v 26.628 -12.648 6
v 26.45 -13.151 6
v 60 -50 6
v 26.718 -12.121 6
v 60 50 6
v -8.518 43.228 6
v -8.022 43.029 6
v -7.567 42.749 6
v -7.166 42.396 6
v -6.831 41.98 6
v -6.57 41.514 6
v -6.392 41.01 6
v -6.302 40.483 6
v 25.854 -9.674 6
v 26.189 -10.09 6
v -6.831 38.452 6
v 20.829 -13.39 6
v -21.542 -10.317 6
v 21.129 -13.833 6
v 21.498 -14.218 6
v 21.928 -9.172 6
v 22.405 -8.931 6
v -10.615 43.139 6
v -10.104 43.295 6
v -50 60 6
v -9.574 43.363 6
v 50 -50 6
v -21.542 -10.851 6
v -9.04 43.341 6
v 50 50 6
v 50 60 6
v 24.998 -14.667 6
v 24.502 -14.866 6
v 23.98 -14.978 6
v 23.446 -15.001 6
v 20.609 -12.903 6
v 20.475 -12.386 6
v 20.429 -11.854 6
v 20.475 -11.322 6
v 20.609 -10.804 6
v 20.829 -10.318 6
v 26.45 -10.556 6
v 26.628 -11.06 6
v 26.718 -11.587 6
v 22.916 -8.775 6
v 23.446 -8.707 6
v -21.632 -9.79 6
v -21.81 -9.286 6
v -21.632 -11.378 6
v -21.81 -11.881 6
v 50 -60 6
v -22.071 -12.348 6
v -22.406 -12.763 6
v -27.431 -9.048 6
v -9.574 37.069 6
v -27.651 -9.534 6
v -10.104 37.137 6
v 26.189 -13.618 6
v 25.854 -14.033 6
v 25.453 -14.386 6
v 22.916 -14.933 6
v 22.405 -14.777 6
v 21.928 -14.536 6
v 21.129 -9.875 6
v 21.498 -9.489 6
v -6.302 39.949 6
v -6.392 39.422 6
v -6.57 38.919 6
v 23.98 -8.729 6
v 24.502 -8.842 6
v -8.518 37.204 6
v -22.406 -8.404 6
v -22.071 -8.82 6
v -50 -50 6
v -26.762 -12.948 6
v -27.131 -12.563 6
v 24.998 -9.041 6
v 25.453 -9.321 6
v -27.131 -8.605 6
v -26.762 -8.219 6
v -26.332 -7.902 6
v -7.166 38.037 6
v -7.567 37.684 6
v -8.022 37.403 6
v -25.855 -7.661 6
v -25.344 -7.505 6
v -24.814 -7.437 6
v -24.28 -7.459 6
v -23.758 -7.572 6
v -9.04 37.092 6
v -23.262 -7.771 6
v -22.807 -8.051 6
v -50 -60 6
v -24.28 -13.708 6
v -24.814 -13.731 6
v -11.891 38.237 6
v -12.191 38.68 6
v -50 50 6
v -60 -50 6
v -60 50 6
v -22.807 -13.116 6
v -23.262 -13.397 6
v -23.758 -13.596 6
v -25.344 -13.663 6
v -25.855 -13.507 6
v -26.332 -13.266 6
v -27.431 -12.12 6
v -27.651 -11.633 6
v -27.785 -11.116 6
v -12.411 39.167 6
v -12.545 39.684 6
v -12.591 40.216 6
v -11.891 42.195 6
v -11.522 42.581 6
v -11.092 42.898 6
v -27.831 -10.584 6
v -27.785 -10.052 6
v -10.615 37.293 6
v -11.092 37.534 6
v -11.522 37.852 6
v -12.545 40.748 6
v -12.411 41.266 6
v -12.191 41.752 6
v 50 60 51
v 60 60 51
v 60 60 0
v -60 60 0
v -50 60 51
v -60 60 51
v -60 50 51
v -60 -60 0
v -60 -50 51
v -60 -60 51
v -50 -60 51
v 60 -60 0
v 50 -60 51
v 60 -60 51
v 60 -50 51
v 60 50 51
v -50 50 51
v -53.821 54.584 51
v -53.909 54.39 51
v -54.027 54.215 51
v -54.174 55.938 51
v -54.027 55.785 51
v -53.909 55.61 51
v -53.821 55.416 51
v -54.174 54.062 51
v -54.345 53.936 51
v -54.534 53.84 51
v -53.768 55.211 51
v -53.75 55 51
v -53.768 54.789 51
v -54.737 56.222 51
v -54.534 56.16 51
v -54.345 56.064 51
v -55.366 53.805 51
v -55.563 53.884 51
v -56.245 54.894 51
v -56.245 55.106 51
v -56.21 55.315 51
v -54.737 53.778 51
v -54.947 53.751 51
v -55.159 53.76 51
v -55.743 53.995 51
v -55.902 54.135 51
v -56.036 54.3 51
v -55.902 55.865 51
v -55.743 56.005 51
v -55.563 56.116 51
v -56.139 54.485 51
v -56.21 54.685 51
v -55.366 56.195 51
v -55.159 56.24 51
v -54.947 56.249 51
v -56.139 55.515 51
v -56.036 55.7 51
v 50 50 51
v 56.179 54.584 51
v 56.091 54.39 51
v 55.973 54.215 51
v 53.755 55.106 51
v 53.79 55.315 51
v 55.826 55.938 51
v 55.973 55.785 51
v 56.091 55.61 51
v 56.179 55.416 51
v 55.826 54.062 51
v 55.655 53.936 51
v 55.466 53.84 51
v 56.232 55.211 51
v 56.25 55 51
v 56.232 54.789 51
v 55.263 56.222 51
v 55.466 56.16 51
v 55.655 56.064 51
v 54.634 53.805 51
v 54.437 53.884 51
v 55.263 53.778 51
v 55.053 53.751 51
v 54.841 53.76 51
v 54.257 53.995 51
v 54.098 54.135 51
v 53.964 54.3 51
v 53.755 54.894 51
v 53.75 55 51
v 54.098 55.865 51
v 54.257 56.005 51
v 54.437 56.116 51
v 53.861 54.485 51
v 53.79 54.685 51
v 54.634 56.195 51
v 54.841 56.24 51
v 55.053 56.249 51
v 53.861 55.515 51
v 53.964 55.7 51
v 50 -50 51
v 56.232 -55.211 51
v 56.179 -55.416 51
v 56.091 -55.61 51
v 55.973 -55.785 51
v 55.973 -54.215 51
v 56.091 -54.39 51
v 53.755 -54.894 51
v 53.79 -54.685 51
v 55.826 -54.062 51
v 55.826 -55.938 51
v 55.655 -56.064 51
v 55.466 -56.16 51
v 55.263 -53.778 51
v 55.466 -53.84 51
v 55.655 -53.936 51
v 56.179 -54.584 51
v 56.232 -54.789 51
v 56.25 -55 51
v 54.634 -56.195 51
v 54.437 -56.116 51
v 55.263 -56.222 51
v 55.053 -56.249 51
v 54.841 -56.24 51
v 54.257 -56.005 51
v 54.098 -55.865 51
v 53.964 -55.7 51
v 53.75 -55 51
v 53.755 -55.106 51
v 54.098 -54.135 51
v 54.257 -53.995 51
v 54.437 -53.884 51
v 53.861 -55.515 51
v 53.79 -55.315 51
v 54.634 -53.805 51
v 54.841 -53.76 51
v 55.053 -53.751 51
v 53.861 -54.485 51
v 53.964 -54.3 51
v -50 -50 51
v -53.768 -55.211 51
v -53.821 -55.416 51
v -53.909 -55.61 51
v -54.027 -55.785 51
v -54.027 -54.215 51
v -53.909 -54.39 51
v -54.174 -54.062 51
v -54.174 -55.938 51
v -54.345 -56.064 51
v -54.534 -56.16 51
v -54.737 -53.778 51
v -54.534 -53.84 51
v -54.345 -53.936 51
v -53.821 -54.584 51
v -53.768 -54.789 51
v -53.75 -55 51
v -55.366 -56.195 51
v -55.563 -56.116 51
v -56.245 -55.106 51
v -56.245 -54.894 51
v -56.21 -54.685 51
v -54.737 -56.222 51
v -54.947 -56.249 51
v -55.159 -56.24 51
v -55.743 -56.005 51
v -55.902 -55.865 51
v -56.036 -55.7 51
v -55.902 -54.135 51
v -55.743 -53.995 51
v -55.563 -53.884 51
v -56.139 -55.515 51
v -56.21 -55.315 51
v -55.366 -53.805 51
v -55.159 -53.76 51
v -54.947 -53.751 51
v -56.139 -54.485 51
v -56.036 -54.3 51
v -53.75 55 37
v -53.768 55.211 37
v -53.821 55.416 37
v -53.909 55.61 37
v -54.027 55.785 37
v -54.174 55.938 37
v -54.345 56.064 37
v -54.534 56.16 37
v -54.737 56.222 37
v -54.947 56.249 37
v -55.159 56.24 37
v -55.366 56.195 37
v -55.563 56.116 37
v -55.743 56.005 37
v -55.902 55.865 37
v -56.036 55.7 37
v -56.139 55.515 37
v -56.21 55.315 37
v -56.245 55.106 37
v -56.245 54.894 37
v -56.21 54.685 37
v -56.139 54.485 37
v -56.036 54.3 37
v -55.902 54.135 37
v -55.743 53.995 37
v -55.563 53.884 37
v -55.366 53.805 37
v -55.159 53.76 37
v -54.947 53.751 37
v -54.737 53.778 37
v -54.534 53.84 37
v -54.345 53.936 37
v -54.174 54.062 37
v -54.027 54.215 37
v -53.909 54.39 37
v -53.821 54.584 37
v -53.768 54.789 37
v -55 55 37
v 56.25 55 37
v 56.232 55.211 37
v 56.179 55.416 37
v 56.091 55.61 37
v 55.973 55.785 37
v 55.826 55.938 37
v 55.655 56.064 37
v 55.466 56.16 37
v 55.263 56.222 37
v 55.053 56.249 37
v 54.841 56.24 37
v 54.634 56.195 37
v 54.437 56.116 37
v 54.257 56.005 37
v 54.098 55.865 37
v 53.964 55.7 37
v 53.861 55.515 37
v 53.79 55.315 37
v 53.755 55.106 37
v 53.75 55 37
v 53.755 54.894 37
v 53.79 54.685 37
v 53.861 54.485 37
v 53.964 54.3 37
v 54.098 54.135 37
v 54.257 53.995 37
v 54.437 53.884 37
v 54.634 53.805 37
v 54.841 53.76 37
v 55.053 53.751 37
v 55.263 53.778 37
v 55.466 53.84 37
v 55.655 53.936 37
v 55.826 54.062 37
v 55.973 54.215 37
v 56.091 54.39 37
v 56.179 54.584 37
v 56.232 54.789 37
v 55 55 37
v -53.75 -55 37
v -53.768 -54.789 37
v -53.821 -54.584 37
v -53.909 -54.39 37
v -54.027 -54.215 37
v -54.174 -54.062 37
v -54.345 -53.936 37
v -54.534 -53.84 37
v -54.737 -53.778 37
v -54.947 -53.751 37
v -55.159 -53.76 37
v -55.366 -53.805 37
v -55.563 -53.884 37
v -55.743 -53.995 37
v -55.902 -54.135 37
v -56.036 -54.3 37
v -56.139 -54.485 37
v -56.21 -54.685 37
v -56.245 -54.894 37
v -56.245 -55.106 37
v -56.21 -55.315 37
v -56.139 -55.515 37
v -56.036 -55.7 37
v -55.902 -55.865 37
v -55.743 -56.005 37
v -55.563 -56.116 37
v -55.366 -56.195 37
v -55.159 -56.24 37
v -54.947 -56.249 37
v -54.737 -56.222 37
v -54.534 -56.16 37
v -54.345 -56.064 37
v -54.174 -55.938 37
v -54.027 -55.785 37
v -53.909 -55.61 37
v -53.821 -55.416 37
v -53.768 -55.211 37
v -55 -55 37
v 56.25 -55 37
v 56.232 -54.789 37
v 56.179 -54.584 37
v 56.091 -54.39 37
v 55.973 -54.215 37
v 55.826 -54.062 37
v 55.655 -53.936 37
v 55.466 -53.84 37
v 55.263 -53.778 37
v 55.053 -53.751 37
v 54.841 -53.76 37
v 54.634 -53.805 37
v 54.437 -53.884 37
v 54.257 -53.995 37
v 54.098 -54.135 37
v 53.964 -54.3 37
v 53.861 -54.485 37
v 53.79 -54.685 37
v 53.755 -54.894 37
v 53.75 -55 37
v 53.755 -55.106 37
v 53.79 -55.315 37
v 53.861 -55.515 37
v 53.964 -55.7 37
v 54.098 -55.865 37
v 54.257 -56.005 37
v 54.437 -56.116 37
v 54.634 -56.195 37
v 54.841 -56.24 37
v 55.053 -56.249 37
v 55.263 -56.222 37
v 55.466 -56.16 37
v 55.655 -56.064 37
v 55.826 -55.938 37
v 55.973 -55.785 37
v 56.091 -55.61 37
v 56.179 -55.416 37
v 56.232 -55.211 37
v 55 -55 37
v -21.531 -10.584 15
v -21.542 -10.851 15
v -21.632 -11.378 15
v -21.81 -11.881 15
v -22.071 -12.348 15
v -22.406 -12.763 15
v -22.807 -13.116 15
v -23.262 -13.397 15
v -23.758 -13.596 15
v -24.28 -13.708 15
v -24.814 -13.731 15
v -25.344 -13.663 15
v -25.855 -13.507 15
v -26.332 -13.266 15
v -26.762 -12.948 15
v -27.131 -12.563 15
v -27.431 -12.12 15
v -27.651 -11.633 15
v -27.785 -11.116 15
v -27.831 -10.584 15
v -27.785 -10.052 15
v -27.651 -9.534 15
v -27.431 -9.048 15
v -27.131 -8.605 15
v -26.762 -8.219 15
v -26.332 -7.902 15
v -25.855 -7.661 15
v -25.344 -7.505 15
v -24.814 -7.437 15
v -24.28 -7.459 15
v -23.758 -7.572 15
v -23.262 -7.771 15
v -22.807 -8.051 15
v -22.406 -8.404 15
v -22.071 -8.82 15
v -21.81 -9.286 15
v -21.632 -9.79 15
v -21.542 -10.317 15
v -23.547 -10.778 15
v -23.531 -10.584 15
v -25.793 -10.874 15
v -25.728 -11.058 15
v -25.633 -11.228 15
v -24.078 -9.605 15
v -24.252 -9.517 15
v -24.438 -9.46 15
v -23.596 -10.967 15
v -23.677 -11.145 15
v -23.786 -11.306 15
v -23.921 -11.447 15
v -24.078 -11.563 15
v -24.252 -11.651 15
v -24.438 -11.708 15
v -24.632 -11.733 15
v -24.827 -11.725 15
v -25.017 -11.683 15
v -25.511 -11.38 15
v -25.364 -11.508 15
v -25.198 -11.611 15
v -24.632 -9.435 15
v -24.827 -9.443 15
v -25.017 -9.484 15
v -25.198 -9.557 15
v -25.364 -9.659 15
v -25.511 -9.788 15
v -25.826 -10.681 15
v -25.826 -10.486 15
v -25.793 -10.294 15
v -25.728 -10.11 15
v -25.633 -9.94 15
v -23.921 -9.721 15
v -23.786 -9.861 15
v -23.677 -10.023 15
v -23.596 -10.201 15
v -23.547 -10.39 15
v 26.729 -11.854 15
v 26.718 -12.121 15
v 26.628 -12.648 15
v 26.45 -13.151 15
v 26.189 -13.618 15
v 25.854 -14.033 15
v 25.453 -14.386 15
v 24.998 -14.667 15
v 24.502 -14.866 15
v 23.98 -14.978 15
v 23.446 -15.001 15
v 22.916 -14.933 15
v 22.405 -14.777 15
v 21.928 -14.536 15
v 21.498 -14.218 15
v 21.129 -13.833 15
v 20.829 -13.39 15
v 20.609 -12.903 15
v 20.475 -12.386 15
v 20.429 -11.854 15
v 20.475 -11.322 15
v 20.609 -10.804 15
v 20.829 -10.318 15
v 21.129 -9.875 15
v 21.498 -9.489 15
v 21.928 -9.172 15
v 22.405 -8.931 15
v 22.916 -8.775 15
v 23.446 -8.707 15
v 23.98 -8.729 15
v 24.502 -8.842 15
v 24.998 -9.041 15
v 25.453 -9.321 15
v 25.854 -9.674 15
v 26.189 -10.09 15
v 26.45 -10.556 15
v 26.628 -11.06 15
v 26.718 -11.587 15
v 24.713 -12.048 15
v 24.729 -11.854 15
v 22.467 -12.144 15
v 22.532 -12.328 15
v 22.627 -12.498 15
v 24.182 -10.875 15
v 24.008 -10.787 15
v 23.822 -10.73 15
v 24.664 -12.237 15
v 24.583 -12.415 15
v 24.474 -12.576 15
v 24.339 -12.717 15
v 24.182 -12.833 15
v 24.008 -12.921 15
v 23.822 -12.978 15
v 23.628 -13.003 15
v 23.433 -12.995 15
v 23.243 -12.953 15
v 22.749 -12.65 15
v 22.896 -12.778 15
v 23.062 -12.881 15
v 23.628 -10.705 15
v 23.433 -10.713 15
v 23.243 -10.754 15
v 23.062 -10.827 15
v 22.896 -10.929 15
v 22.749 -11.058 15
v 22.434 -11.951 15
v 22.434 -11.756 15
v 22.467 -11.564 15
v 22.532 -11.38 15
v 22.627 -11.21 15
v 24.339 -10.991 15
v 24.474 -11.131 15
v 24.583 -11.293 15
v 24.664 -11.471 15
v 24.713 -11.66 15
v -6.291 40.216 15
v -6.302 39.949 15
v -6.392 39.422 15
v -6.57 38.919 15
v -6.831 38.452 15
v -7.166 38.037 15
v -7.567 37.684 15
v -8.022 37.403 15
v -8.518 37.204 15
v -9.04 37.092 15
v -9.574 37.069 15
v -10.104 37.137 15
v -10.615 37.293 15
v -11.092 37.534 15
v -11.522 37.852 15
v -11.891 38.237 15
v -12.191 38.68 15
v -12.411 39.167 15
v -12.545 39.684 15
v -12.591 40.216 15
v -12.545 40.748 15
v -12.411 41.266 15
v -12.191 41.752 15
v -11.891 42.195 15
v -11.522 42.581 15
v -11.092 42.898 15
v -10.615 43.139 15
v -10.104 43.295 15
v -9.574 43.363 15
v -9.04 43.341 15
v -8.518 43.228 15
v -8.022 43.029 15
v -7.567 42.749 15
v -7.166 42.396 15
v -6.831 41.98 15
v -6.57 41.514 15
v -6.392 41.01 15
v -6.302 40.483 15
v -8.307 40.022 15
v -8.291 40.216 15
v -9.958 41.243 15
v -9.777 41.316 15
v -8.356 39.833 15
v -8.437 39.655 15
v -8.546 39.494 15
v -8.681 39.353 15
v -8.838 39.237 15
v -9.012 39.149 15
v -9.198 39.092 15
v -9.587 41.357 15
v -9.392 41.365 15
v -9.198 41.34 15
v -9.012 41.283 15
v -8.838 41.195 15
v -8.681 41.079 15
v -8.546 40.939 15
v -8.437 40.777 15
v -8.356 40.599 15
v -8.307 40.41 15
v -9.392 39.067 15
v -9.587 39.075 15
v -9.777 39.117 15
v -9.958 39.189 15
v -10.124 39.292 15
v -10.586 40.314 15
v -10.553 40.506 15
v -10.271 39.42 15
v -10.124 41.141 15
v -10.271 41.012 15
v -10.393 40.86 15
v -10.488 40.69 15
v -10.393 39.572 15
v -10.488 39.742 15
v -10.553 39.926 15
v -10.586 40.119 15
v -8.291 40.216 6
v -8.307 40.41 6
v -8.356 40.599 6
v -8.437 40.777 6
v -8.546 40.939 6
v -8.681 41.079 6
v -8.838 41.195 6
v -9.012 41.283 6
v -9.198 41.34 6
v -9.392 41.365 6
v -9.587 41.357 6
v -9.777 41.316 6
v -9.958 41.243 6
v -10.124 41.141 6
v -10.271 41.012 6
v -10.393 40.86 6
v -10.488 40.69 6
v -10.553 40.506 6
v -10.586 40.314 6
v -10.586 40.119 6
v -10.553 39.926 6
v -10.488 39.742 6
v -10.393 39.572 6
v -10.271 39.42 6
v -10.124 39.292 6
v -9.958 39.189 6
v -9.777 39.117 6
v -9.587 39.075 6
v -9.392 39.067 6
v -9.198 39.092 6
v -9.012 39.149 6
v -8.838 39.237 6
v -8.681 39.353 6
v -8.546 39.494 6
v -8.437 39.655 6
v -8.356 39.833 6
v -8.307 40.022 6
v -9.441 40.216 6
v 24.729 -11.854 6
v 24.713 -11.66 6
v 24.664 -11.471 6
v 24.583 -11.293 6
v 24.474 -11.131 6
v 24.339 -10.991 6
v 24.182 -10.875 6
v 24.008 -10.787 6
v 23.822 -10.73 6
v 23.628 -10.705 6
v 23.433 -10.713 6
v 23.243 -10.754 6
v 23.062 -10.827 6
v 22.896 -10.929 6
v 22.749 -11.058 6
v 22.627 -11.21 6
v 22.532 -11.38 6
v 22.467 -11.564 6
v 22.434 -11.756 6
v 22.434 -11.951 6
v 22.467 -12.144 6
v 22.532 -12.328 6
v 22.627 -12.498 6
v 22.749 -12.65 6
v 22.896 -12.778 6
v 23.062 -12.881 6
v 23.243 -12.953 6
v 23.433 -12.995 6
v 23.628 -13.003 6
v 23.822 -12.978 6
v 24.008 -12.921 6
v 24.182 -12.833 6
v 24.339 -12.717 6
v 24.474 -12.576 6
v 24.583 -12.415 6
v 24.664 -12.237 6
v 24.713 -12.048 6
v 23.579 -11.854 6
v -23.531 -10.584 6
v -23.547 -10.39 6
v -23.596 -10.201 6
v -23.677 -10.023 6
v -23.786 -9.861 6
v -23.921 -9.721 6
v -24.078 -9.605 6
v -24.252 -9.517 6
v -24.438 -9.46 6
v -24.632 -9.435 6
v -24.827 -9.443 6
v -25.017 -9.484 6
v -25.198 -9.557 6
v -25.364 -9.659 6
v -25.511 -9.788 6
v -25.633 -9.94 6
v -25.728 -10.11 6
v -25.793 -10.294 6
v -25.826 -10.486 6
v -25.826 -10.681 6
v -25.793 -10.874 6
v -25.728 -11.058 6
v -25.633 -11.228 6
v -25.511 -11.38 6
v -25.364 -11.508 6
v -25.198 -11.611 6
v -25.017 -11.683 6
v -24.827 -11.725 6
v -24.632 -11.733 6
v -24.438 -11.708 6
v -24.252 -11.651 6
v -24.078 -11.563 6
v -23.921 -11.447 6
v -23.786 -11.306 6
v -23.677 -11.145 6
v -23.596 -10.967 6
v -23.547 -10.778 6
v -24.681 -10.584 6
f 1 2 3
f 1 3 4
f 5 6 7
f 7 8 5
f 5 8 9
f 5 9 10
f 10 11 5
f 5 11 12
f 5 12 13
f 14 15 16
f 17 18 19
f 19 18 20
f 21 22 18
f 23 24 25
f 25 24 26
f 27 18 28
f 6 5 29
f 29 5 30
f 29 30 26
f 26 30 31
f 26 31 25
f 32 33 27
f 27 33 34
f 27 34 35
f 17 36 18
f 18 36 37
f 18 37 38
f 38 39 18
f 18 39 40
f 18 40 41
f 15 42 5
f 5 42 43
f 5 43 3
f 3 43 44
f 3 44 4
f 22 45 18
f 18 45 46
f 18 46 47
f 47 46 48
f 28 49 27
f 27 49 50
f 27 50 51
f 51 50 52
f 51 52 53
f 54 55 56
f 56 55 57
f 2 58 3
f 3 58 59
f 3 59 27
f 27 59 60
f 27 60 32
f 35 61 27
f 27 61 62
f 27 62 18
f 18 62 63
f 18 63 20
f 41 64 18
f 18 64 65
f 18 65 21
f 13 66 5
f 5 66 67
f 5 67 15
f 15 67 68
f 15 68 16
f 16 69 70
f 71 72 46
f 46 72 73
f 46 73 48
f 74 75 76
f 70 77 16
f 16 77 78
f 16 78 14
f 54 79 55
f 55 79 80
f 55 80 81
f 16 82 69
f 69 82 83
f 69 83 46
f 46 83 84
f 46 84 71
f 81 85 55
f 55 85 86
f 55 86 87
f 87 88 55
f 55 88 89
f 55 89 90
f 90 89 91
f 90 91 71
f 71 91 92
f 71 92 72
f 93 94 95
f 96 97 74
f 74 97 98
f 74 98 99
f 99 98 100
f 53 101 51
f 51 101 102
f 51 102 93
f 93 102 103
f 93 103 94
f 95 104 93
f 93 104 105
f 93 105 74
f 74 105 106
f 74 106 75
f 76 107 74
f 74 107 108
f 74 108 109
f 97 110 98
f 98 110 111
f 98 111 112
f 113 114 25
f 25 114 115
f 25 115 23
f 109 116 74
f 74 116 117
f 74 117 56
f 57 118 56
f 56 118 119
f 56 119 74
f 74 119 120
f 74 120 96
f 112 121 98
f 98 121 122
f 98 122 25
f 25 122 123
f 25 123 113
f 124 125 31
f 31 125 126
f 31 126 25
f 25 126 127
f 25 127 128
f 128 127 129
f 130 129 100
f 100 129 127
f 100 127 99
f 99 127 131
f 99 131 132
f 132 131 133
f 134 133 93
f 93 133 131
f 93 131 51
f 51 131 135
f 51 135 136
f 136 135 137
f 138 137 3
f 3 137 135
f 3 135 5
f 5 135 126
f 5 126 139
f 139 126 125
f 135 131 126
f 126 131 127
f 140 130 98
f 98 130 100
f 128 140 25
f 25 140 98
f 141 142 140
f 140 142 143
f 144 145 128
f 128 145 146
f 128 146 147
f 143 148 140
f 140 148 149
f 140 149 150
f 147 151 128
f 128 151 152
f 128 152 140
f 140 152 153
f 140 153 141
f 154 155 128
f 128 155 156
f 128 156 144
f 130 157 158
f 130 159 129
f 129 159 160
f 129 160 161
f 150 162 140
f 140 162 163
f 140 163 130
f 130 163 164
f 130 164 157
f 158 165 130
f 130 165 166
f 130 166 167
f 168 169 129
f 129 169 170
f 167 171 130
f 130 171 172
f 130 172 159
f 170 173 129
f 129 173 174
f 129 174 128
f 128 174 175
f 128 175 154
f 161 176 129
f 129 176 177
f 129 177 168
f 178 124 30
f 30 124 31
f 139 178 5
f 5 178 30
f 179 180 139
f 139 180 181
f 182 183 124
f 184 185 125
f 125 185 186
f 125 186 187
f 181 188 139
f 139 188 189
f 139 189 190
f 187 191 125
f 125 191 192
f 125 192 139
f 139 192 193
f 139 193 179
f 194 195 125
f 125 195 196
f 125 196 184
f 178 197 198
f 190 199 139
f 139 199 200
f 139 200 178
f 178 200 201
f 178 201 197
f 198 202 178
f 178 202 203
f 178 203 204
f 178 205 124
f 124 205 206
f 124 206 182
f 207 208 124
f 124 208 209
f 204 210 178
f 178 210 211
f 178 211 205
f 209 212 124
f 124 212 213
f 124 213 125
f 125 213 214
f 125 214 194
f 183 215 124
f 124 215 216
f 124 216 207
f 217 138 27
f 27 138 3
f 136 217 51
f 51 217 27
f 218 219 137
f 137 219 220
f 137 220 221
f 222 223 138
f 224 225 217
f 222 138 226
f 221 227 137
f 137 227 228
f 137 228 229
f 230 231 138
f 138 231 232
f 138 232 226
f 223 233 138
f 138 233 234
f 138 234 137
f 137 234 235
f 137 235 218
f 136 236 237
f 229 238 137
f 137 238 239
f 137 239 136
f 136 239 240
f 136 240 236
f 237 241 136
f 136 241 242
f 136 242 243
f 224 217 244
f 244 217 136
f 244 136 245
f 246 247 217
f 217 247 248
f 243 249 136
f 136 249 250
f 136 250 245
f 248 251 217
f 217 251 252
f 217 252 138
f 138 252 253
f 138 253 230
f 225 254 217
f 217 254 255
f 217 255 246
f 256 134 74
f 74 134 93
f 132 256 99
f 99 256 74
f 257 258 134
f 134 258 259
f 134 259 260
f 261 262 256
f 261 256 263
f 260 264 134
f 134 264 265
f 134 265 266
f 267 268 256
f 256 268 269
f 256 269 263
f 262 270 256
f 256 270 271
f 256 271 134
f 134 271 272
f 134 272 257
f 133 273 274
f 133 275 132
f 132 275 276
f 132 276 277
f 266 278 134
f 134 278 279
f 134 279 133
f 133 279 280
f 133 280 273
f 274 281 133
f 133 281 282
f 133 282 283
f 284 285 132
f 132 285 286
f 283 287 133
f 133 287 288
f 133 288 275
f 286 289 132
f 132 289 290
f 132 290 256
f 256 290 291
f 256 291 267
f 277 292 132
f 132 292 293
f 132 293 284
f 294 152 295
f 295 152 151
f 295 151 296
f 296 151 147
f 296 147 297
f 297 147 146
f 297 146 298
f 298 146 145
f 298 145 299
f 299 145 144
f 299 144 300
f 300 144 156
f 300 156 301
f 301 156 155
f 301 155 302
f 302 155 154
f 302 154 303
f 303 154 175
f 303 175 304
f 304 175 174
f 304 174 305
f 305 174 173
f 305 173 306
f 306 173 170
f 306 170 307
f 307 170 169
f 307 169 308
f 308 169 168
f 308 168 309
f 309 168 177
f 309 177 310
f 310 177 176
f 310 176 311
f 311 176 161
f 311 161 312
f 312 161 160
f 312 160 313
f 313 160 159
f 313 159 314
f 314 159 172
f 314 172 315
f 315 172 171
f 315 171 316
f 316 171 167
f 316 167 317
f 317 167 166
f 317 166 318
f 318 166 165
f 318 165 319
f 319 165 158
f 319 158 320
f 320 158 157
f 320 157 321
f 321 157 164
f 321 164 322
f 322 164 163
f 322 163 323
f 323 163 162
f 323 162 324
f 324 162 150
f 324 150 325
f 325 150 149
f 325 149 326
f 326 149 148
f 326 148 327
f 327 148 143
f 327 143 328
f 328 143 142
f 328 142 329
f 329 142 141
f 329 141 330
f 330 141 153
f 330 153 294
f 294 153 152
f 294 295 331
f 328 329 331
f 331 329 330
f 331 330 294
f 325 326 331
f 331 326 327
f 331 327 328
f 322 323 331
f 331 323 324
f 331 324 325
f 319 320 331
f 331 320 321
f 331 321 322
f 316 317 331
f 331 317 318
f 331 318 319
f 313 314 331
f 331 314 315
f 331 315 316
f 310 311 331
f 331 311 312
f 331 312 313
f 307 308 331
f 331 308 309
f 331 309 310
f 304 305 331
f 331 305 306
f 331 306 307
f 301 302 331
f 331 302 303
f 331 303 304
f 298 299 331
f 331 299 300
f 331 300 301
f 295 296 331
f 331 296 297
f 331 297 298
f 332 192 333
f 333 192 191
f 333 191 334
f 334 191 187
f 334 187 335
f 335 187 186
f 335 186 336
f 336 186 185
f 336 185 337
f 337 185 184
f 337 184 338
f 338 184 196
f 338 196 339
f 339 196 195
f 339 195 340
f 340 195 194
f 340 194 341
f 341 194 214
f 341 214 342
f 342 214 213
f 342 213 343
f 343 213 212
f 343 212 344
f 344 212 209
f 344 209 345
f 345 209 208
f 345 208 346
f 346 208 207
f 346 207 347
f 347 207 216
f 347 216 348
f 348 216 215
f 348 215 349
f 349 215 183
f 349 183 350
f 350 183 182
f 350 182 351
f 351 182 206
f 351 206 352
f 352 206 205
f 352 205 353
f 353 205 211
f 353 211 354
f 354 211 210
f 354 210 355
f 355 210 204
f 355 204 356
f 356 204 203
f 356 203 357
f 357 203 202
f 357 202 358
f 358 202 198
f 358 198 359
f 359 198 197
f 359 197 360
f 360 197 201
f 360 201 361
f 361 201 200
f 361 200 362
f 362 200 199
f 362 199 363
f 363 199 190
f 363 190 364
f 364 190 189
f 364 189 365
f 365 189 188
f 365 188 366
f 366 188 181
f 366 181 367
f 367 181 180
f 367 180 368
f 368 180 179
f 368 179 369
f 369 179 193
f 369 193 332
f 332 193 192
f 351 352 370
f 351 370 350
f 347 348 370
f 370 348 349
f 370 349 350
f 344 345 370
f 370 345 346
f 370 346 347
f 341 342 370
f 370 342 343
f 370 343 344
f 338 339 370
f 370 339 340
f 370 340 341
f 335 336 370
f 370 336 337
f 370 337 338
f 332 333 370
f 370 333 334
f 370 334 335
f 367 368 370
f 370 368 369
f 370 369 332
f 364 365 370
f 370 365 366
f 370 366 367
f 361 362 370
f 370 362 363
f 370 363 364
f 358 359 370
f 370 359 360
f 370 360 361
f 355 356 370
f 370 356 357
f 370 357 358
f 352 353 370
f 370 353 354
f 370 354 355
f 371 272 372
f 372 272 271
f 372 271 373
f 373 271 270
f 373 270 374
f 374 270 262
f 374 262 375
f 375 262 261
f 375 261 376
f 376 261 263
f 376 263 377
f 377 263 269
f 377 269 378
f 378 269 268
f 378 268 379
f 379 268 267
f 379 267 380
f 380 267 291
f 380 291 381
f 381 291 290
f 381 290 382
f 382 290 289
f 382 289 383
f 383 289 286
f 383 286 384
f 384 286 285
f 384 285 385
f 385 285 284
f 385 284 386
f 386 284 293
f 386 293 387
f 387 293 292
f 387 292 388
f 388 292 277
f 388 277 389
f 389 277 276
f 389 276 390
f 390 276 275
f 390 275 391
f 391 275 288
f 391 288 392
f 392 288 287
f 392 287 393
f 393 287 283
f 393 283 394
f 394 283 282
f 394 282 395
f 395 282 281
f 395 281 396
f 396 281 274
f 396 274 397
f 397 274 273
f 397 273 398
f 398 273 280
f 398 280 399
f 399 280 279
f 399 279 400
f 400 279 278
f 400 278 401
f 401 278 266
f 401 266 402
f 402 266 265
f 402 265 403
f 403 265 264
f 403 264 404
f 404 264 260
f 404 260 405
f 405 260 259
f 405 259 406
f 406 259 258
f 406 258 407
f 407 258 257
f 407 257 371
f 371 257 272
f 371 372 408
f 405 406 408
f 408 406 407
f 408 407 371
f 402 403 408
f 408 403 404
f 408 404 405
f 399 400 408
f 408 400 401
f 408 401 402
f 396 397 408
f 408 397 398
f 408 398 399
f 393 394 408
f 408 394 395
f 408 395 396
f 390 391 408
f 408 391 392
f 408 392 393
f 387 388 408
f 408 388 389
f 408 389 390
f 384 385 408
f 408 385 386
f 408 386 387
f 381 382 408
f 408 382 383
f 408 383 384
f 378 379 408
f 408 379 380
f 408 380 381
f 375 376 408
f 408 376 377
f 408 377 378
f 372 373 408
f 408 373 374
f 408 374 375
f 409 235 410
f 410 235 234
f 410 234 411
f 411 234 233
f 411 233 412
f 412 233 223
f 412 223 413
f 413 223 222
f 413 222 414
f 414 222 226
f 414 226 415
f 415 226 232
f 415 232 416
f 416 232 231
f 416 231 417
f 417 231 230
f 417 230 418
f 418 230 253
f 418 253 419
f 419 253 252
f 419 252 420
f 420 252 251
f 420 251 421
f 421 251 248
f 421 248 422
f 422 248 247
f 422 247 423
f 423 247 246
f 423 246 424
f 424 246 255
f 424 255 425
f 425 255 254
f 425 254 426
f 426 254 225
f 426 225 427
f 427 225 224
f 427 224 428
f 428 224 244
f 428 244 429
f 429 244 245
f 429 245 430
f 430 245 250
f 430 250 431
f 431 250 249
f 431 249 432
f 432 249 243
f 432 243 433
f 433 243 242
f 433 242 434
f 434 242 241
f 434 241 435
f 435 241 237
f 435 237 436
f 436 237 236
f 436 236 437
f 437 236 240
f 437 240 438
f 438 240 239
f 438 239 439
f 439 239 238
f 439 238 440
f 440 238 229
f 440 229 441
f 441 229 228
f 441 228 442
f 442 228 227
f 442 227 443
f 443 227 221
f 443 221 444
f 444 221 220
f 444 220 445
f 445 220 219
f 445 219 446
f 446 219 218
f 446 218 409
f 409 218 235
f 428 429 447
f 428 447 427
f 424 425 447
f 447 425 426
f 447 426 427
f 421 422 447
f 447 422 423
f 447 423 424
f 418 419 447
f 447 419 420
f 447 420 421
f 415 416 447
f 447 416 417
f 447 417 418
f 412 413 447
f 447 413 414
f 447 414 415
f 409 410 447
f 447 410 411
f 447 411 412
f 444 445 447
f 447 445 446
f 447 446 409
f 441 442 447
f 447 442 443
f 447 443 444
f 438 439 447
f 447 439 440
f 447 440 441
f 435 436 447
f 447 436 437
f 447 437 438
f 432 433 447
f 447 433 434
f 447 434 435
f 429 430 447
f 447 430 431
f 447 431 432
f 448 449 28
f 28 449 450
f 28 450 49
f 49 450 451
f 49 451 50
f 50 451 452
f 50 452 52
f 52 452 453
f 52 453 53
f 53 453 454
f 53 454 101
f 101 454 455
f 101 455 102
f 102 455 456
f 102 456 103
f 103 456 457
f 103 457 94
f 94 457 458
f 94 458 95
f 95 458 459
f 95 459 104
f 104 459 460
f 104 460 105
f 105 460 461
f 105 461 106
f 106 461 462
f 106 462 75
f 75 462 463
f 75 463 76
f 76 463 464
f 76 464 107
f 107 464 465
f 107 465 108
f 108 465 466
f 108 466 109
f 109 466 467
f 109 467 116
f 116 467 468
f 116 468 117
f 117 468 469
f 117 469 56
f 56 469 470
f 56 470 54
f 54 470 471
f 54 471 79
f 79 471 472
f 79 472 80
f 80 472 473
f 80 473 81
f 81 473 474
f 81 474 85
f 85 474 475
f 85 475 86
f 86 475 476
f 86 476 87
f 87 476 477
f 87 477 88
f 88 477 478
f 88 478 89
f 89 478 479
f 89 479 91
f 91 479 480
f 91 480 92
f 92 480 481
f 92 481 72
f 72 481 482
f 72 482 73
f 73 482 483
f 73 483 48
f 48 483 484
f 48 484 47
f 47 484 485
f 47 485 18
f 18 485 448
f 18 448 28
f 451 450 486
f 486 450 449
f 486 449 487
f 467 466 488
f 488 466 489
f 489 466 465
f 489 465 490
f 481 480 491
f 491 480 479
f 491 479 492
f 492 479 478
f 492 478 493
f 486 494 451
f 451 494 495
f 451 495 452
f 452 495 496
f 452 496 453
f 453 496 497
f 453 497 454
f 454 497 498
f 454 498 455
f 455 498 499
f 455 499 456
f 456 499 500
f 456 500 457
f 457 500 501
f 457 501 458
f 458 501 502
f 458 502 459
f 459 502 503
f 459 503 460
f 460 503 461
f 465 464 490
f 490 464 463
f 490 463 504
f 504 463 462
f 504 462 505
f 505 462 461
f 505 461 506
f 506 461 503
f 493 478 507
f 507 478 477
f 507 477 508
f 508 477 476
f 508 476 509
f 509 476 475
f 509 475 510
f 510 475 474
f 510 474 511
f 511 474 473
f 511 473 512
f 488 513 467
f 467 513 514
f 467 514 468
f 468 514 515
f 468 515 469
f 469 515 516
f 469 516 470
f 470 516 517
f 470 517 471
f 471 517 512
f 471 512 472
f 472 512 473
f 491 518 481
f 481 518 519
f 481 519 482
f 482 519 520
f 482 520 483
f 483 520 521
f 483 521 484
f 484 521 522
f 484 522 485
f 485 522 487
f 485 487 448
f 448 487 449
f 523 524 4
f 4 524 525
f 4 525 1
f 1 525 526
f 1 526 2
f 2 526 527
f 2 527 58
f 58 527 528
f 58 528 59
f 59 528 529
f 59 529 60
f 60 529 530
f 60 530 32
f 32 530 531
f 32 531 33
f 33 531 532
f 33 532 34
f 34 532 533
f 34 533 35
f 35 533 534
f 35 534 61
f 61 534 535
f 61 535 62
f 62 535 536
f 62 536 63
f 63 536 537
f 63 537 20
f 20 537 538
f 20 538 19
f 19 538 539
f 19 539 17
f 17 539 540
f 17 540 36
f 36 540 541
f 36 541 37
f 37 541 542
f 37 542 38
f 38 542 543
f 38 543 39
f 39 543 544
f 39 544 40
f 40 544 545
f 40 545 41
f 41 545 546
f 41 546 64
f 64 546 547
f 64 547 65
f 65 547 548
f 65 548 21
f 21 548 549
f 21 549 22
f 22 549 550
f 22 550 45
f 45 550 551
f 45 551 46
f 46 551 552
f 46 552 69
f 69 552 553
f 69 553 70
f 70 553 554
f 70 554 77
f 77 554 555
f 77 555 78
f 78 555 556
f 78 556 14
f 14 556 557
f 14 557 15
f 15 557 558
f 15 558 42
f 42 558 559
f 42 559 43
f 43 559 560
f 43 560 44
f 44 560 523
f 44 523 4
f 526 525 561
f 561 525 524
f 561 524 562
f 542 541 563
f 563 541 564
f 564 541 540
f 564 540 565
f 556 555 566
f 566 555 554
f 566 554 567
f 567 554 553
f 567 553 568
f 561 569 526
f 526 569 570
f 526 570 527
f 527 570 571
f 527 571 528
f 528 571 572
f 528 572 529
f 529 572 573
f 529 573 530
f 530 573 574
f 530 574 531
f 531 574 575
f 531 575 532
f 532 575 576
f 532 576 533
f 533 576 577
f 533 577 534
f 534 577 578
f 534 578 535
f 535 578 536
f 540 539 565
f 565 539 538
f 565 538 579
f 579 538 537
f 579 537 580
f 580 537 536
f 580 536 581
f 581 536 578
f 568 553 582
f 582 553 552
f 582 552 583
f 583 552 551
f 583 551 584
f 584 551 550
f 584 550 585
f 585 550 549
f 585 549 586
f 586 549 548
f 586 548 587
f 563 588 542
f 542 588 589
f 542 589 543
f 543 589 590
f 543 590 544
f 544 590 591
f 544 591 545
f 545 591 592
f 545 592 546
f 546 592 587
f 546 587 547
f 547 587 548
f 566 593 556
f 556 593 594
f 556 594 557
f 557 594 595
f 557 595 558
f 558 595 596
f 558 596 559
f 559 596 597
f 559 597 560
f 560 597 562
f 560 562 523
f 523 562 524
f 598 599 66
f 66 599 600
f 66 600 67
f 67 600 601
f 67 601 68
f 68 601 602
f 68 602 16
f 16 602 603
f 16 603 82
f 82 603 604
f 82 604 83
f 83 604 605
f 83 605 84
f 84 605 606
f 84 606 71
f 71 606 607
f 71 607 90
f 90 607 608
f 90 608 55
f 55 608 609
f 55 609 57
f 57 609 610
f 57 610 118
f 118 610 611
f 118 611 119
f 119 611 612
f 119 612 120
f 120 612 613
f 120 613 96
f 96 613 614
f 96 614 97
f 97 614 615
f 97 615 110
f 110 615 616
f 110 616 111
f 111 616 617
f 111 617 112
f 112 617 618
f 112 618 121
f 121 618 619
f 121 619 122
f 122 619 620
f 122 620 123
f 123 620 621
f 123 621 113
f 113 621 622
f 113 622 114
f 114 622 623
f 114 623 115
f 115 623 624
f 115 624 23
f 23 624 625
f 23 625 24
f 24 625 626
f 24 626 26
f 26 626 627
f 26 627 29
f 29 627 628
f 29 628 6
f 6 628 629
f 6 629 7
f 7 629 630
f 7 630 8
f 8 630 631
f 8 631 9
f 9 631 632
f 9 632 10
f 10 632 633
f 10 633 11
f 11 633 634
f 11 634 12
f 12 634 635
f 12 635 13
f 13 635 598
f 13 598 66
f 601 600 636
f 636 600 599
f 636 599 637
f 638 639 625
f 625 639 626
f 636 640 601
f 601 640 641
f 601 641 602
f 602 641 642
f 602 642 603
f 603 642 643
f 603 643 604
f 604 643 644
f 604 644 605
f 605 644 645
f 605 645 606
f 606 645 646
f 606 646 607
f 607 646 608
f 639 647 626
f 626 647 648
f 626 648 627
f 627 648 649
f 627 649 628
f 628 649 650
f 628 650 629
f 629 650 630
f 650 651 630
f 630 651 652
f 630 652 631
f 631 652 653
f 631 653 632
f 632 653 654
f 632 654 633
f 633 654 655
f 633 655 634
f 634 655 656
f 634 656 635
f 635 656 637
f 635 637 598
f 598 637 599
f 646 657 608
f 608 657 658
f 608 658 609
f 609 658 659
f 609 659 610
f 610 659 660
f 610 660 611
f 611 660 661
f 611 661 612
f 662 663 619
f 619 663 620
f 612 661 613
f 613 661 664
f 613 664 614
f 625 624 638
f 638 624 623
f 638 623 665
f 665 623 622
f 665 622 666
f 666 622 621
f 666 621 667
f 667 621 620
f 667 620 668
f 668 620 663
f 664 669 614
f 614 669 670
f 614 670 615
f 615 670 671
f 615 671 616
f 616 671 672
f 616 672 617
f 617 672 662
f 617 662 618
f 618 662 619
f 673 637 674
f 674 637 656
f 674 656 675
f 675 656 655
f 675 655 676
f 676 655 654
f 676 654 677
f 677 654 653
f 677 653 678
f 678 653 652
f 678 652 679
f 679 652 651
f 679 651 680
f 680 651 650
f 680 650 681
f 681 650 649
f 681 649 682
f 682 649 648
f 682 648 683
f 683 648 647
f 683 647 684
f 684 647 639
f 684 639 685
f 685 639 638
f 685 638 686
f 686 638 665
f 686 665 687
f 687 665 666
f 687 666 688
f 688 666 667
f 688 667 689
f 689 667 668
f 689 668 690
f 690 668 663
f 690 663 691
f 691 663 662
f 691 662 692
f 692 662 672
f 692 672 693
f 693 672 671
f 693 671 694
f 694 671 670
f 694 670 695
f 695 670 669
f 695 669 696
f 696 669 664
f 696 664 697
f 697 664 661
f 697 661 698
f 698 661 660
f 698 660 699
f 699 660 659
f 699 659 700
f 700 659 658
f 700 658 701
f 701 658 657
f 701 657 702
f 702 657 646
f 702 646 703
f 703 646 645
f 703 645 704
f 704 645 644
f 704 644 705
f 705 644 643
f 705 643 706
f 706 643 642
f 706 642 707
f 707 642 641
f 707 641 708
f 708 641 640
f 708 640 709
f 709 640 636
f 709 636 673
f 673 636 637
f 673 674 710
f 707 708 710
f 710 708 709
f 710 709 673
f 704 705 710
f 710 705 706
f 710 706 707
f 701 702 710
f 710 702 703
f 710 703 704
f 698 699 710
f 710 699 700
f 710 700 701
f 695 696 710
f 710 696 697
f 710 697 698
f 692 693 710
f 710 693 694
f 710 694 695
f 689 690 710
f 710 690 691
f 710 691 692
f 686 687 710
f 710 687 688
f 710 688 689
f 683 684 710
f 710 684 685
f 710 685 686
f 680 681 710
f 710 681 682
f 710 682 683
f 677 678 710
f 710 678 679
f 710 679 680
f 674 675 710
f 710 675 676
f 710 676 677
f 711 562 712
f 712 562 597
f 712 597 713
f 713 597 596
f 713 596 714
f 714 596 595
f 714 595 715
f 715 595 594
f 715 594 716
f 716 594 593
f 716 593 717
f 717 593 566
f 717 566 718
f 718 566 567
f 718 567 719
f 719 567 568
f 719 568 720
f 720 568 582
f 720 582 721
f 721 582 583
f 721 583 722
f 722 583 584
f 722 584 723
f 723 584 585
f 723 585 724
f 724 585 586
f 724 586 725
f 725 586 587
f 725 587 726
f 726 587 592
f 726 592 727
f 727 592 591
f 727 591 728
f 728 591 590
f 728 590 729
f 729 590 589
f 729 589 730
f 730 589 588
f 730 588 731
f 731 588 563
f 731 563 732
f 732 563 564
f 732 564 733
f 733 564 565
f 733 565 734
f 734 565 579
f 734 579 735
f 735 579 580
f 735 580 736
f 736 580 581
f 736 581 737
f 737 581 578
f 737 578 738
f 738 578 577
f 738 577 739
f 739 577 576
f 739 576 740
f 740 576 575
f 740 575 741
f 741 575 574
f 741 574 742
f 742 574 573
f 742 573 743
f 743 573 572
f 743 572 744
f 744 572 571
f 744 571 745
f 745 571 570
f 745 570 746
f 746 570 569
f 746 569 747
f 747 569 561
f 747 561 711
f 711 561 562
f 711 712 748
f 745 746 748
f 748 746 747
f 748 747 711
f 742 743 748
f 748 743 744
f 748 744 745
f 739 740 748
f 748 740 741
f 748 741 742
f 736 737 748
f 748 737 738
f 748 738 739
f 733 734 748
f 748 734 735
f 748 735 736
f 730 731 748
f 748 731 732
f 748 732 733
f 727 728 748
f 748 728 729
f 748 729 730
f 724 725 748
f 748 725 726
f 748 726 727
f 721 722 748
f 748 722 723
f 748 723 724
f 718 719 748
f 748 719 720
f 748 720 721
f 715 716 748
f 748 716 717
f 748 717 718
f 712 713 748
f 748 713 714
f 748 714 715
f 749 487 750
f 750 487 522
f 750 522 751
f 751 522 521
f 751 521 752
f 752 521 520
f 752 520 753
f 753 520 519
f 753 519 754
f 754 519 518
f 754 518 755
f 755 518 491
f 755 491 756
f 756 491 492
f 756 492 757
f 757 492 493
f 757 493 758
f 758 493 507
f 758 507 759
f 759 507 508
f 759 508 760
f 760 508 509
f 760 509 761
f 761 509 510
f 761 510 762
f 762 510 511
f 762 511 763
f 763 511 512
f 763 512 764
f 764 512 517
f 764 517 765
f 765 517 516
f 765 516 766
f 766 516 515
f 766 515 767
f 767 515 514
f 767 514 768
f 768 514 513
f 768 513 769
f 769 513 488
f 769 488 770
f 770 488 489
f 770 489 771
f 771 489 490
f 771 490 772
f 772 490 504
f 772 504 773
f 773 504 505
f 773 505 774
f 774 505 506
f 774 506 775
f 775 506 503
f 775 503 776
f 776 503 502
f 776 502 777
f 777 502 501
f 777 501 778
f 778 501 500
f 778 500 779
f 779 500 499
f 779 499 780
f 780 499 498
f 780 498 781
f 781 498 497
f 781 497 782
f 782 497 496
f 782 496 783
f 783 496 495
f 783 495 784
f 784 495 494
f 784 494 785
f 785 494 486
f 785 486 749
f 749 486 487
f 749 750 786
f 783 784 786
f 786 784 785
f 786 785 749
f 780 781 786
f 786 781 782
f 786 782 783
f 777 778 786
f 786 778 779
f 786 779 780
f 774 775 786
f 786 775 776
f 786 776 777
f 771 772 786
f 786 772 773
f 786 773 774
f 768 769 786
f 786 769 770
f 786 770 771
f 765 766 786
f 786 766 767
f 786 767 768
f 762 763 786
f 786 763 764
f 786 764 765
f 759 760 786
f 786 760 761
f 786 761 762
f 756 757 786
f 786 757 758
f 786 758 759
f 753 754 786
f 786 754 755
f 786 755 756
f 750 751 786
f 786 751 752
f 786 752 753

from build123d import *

# Parameters (mm, degrees)
SKETCH1_W                                  = 120
SKETCH1_H                                  = 120
BOSS_EXTRUDE1_DEPTH                        = 6
SKETCH2_W                                  = 10
SKETCH2_H                                  = 10
BOSS_EXTRUDE2_DEPTH                        = 45
SKETCH4_R                                  = 1.25
CUT_EXTRUDE1_DEPTH                         = 14
MIRROR1_AT_THE_SECOND_PLANE_COPY_1_SKETC_R = 1.25
MIRROR1_AT_THE_SECOND_PLANE_COPY_1_DEPTH   = 14
SKETCH5_R                                  = 3.15
BOSS_EXTRUDE4_DEPTH                        = 9
SKETCH7_R                                  = 1.15
CUT_EXTRUDE2_DEPTH                         = 9


with BuildPart() as part:
    # Sketch1 → Boss-Extrude1 (new body)
    with BuildSketch(Plane(origin=(0, 0, 0), x_dir=(0, 1, 0), z_dir=(0, 0, 1))):
        Rectangle(SKETCH1_W, SKETCH1_H)
    extrude(amount=BOSS_EXTRUDE1_DEPTH)

    # Sketch2 → Boss-Extrude2 (add)
    with BuildSketch(Plane.XY.offset(6)):
        with Locations((-55, 55)):
            Rectangle(SKETCH2_W, SKETCH2_H)
        with Locations((55, 55)):
            Rectangle(SKETCH2_W, SKETCH2_H)
        with Locations((55, -55)):
            Rectangle(SKETCH2_W, SKETCH2_H)
        with Locations((-55, -55)):
            Rectangle(SKETCH2_W, SKETCH2_H)
    extrude(amount=BOSS_EXTRUDE2_DEPTH)

    # Sketch4 → Cut-Extrude1 (cut)
    with BuildSketch(Plane.XY.offset(51)):
        with Locations((-55, 55)):
            Circle(SKETCH4_R)
    cut_extrude1 = extrude(amount=-CUT_EXTRUDE1_DEPTH, mode=Mode.SUBTRACT)

    # Mirror1: Cut-Extrude1 across plane
    add(cut_extrude1.mirror(Plane.ZX), mode=Mode.SUBTRACT)

    # Mirror1 at the second plane: Cut-Extrude1 across plane
    add(cut_extrude1.mirror(Plane(origin=(0, 0, 0), x_dir=(0, 0, 1), z_dir=(1, 0, 0))), mode=Mode.SUBTRACT)

    # Mirror1 at the second plane copy 1 sketc → Mirror1 at the second plane copy 1 (cut)
    with BuildSketch(Plane(origin=(0, 0, 51), x_dir=(-1, 0, 0), z_dir=(0, 0, 1))):
        with Locations((-55, 55)):
            Circle(MIRROR1_AT_THE_SECOND_PLANE_COPY_1_SKETC_R)
    extrude(amount=-MIRROR1_AT_THE_SECOND_PLANE_COPY_1_DEPTH, mode=Mode.SUBTRACT)

    # Sketch5 → Boss-Extrude4 (add)
    with BuildSketch(Plane.XY.offset(6)):
        with Locations(Location((-9.440556716, 40.216124503, 0), (0, 0, 180))):
            Circle(SKETCH5_R)
        with Locations(Location((-24.680556716, -10.583875497, 0), (0, 0, 180))):
            Circle(SKETCH5_R)
        with Locations(Location((23.579443284, -11.853875497, 0), (0, 0, 180))):
            Circle(SKETCH5_R)
    extrude(amount=BOSS_EXTRUDE4_DEPTH)

    # Sketch7 → Cut-Extrude2 (cut)
    with BuildSketch(Plane(origin=(0, 0, 15), x_dir=(0, -1, 0), z_dir=(0, 0, 1))):
        with Locations(Location((-40.216124503, -9.440556716, 0), (0, 0, 90))):
            Circle(SKETCH7_R)
        with Locations(Location((11.853875497, 23.579443284, 0), (0, 0, 90))):
            Circle(SKETCH7_R)
        with Locations(Location((10.583875497, -24.680556716, 0), (0, 0, 90))):
            Circle(SKETCH7_R)
    extrude(amount=-CUT_EXTRUDE2_DEPTH, mode=Mode.SUBTRACT)


solid = part.part
